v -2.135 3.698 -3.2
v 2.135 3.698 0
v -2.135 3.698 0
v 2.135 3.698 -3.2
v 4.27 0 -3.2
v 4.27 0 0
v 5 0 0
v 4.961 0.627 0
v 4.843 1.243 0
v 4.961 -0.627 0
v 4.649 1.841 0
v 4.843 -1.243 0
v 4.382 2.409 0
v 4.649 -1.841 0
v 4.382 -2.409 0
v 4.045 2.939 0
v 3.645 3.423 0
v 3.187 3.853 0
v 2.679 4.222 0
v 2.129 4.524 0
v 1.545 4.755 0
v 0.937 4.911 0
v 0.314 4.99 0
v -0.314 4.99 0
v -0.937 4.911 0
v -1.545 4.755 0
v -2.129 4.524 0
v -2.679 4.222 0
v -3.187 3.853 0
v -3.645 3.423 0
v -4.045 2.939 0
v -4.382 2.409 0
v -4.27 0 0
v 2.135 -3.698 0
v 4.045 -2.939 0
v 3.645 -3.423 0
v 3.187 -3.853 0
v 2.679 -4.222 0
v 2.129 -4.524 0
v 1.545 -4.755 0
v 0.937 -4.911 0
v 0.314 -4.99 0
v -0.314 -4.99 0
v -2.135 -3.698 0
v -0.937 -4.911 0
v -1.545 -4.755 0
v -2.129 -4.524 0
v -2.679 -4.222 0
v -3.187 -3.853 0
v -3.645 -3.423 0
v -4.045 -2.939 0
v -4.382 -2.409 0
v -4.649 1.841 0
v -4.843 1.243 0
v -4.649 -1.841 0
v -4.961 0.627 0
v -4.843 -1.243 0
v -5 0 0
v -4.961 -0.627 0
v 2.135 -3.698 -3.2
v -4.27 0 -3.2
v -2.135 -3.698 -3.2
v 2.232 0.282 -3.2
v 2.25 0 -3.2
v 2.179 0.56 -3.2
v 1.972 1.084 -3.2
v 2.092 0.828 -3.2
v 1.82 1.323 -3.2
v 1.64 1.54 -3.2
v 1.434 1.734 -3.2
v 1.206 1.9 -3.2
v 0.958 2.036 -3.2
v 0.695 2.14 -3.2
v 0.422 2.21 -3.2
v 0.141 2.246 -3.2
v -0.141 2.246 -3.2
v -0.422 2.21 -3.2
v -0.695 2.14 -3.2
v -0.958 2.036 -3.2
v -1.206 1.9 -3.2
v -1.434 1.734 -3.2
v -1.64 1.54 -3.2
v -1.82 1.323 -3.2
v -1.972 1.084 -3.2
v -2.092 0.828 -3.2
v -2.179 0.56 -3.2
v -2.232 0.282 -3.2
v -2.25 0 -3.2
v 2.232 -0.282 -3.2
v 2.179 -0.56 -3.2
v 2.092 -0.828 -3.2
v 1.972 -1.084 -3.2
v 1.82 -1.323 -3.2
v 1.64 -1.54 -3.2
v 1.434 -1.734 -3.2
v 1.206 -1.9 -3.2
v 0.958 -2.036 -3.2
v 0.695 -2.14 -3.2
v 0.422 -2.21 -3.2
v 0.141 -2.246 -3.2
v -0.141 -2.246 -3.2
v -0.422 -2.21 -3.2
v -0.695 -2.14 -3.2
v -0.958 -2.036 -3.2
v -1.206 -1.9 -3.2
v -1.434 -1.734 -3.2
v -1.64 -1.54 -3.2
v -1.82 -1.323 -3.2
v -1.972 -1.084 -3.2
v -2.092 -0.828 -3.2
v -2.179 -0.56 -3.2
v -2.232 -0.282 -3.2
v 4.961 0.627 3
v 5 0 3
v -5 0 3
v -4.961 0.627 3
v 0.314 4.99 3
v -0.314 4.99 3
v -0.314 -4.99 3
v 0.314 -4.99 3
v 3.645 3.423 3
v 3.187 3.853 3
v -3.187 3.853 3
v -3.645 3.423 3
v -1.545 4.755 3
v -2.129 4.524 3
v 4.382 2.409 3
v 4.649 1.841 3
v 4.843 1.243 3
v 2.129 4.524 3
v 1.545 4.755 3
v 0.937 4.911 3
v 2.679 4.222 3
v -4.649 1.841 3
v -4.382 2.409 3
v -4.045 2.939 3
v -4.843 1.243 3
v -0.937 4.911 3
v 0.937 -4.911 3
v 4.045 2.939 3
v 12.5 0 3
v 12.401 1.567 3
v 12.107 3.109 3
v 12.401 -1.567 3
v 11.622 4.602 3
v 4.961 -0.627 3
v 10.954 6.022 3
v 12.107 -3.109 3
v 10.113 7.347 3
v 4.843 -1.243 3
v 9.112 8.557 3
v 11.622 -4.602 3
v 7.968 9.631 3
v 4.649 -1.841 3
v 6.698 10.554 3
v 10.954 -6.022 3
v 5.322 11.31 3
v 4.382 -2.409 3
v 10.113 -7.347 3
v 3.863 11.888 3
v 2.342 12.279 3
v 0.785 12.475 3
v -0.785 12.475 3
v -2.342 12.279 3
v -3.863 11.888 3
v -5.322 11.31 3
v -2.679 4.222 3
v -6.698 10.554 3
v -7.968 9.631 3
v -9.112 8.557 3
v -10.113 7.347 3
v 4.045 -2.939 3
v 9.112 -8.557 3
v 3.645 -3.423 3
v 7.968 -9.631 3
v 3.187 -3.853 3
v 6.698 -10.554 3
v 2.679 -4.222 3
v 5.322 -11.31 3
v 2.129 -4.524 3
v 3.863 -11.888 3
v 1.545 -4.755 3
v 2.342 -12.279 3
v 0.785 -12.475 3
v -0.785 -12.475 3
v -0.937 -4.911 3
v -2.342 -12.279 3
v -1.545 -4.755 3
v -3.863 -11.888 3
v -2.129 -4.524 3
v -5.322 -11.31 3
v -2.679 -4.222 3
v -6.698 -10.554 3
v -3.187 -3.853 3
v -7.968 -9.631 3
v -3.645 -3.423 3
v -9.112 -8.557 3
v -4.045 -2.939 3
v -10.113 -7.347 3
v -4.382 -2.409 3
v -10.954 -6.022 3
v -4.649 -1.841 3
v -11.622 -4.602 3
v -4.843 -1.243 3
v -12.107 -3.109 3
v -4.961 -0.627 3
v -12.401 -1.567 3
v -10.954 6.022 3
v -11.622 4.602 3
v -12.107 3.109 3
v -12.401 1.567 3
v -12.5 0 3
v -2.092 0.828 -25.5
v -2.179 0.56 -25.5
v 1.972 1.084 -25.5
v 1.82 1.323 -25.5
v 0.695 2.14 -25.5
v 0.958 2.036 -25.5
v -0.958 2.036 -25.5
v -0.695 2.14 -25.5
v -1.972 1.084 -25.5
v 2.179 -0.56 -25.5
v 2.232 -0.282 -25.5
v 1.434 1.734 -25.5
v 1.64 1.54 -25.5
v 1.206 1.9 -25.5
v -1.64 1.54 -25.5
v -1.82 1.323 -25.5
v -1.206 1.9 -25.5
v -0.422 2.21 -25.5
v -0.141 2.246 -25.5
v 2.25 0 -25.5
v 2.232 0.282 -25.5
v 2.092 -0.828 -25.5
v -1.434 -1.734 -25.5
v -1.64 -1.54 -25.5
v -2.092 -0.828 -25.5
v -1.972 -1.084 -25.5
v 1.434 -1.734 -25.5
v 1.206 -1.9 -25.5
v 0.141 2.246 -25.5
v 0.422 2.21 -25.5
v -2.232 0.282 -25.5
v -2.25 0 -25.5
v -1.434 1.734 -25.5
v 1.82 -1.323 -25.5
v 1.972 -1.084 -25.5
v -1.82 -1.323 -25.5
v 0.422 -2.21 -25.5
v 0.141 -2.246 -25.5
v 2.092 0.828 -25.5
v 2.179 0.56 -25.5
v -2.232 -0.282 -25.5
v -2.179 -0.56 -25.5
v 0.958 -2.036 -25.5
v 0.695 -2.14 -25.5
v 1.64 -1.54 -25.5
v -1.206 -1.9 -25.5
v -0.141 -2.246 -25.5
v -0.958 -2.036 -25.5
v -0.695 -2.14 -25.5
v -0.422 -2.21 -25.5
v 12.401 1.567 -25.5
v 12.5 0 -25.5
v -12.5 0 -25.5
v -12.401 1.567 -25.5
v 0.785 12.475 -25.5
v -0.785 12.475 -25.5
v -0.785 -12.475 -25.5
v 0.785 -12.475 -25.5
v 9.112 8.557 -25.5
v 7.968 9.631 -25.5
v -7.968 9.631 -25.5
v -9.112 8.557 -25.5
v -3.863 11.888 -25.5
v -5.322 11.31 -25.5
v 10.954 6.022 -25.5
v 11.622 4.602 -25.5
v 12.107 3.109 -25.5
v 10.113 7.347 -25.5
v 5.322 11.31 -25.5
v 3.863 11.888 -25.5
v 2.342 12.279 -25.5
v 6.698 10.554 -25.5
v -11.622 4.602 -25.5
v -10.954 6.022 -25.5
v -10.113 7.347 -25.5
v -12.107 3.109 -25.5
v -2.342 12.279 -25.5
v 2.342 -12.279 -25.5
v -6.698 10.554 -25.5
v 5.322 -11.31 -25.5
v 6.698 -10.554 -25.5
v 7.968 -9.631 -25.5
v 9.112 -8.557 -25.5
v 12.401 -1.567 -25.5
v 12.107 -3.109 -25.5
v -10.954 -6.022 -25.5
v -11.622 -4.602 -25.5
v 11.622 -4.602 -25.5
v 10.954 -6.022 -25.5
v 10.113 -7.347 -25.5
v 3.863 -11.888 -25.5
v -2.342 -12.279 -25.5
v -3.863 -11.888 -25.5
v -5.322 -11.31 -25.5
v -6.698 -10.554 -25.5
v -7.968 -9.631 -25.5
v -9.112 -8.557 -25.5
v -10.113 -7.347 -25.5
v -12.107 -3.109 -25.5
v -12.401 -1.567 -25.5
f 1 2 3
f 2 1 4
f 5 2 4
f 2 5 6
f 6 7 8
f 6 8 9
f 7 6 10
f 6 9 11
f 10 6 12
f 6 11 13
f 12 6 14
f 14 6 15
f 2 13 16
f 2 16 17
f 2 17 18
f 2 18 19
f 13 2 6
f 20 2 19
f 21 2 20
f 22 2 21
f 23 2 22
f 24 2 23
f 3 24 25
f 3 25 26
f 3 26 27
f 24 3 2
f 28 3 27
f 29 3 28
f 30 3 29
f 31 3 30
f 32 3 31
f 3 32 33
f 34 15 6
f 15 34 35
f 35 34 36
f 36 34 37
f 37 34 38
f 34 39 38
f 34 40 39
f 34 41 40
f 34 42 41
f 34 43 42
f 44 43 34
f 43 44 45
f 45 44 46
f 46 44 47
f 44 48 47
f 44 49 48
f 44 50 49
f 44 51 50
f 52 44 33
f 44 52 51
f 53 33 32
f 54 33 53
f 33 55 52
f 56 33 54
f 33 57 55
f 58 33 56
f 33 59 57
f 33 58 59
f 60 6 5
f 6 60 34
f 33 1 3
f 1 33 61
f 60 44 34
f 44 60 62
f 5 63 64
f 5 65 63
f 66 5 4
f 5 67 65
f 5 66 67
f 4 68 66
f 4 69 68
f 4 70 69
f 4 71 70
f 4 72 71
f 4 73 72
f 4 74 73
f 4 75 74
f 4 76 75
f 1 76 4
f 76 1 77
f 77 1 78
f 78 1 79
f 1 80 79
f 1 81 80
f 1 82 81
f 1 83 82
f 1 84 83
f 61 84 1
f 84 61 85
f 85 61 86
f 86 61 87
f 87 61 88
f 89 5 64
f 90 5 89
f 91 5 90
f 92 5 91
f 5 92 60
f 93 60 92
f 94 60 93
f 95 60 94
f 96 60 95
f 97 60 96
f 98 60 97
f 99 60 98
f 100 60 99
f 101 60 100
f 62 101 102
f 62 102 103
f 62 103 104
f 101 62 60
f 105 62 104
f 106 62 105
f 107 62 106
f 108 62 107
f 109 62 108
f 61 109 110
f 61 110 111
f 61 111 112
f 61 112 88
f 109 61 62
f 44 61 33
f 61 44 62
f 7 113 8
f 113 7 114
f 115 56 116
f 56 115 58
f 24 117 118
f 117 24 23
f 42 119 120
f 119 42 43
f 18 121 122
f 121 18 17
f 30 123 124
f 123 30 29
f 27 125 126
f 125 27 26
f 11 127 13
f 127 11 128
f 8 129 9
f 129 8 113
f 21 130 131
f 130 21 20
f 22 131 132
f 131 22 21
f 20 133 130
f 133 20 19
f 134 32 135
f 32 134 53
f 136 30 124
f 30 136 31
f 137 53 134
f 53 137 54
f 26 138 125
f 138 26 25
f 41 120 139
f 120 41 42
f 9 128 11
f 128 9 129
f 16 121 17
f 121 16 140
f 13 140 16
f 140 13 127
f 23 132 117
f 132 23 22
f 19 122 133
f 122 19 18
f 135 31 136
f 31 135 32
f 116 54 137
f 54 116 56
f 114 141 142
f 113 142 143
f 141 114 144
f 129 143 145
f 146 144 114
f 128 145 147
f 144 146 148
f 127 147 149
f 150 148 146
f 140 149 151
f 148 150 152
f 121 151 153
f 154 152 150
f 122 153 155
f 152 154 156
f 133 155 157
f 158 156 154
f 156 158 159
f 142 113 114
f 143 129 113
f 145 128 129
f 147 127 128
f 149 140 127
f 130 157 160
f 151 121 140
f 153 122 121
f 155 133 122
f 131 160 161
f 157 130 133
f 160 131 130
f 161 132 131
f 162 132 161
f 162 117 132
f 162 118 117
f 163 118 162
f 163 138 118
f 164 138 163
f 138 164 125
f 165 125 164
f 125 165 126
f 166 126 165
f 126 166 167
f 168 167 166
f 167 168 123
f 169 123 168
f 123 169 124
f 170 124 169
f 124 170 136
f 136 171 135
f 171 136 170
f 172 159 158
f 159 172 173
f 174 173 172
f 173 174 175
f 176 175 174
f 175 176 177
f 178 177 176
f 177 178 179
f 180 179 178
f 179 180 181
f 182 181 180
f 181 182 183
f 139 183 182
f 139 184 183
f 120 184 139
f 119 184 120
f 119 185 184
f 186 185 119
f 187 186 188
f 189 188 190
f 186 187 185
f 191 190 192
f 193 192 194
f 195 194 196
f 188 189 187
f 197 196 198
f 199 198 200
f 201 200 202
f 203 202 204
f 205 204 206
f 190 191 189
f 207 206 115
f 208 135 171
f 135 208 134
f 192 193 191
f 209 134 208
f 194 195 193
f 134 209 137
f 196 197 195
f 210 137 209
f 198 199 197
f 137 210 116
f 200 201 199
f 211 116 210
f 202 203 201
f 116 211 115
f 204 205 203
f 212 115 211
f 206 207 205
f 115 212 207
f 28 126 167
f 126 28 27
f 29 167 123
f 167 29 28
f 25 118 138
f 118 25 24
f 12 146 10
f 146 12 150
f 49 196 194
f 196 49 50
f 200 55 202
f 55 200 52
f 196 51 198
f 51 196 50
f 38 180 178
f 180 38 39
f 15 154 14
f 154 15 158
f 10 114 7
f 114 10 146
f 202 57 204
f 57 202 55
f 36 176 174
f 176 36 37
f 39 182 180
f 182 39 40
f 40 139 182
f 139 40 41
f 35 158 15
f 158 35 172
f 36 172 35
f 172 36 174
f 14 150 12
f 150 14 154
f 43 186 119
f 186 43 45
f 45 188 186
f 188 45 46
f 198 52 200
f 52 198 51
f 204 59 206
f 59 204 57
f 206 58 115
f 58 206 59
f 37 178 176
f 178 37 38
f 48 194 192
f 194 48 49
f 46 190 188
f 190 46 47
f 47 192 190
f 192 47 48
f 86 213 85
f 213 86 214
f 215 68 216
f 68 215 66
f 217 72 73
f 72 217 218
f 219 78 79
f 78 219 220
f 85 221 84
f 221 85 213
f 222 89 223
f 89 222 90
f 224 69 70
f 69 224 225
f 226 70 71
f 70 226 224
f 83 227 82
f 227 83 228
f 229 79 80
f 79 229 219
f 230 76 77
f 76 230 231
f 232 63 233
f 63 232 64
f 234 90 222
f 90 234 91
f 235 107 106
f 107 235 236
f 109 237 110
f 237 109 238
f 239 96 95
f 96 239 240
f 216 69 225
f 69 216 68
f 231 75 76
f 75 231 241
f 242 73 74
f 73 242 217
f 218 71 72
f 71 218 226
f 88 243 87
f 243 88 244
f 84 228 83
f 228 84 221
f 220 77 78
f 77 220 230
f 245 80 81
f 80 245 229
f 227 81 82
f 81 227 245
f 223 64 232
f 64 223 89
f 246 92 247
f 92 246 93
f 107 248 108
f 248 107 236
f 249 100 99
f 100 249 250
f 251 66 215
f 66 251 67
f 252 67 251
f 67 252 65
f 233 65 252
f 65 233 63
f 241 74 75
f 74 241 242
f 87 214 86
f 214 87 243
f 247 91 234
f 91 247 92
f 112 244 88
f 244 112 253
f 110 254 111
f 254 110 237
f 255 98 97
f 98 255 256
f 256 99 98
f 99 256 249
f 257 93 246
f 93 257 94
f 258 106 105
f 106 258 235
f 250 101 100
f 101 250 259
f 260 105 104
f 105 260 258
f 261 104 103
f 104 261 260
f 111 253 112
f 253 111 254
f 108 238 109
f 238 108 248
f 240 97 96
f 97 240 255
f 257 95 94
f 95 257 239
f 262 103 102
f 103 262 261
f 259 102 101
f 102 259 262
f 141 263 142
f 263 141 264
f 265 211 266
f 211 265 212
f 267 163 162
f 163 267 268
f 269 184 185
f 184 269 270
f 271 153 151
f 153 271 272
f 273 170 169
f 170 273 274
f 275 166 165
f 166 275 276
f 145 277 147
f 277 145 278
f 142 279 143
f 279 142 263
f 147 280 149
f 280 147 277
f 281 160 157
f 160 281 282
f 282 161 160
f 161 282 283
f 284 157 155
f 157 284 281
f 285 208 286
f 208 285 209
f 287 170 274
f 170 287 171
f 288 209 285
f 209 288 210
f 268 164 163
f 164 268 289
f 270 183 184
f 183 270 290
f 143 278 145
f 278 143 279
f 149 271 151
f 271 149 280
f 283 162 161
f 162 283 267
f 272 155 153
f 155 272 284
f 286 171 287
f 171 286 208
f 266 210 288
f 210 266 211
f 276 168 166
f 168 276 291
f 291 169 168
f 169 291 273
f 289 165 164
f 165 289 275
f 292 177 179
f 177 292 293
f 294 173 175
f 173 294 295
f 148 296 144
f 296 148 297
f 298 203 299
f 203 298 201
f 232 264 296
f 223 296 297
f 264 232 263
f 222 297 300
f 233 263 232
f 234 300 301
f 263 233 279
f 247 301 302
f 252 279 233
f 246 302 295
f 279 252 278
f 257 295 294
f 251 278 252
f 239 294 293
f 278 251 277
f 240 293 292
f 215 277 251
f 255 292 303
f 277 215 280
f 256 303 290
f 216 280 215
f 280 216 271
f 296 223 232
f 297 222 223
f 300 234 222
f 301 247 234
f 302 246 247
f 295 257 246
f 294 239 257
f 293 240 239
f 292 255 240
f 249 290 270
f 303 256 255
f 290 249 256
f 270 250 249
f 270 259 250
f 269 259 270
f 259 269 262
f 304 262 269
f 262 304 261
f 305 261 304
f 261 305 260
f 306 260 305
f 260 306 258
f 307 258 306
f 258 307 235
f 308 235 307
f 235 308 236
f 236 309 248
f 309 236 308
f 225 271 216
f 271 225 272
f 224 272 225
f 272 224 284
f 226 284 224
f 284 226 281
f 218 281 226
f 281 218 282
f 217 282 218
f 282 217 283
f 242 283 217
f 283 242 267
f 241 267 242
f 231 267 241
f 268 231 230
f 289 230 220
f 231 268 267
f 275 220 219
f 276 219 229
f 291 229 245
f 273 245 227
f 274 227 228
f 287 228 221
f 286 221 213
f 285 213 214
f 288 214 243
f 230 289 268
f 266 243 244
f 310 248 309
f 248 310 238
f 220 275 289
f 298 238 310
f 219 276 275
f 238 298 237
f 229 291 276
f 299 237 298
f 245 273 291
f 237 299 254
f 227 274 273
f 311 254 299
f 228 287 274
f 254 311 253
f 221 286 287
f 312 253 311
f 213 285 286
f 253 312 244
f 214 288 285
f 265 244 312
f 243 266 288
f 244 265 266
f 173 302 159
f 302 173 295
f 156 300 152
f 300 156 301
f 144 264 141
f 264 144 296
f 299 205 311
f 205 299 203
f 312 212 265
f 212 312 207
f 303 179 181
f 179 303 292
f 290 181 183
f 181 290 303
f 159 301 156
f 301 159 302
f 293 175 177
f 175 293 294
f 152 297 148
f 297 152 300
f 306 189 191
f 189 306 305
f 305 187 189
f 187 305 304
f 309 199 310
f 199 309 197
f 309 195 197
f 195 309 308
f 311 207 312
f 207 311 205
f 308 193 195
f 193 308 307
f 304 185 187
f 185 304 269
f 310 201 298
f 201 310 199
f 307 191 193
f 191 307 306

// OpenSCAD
$fn = 50;


difference() {
	union() {
		translate(v = [0, 0, -25.5000000000]) {
			cylinder(h = 28.5000000000, r = 12.5000000000);
		}
	}
	union() {
		translate(v = [0, 0, 0]) {
			rotate(a = [0, 0, 0]) {
				difference() {
					union() {
						translate(v = [0, 0, -3.2000000000]) {
							linear_extrude(height = 3.2000000000) {
								polygon(points = [[4.2698000000, 0.0000000000], [2.1349000000, 3.6977552691], [-2.1349000000, 3.6977552691], [-4.2698000000, 0.0000000000], [-2.1349000000, -3.6977552691], [2.1349000000, -3.6977552691]]);
							}
						}
					}
					union();
				}
			}
		}
		#cylinder(h = 3, r = 5.0000000000);
		#translate(v = [0, 0, -100.0000000000]) {
			cylinder(h = 200, r = 2.2500000000);
		}
	}
}
